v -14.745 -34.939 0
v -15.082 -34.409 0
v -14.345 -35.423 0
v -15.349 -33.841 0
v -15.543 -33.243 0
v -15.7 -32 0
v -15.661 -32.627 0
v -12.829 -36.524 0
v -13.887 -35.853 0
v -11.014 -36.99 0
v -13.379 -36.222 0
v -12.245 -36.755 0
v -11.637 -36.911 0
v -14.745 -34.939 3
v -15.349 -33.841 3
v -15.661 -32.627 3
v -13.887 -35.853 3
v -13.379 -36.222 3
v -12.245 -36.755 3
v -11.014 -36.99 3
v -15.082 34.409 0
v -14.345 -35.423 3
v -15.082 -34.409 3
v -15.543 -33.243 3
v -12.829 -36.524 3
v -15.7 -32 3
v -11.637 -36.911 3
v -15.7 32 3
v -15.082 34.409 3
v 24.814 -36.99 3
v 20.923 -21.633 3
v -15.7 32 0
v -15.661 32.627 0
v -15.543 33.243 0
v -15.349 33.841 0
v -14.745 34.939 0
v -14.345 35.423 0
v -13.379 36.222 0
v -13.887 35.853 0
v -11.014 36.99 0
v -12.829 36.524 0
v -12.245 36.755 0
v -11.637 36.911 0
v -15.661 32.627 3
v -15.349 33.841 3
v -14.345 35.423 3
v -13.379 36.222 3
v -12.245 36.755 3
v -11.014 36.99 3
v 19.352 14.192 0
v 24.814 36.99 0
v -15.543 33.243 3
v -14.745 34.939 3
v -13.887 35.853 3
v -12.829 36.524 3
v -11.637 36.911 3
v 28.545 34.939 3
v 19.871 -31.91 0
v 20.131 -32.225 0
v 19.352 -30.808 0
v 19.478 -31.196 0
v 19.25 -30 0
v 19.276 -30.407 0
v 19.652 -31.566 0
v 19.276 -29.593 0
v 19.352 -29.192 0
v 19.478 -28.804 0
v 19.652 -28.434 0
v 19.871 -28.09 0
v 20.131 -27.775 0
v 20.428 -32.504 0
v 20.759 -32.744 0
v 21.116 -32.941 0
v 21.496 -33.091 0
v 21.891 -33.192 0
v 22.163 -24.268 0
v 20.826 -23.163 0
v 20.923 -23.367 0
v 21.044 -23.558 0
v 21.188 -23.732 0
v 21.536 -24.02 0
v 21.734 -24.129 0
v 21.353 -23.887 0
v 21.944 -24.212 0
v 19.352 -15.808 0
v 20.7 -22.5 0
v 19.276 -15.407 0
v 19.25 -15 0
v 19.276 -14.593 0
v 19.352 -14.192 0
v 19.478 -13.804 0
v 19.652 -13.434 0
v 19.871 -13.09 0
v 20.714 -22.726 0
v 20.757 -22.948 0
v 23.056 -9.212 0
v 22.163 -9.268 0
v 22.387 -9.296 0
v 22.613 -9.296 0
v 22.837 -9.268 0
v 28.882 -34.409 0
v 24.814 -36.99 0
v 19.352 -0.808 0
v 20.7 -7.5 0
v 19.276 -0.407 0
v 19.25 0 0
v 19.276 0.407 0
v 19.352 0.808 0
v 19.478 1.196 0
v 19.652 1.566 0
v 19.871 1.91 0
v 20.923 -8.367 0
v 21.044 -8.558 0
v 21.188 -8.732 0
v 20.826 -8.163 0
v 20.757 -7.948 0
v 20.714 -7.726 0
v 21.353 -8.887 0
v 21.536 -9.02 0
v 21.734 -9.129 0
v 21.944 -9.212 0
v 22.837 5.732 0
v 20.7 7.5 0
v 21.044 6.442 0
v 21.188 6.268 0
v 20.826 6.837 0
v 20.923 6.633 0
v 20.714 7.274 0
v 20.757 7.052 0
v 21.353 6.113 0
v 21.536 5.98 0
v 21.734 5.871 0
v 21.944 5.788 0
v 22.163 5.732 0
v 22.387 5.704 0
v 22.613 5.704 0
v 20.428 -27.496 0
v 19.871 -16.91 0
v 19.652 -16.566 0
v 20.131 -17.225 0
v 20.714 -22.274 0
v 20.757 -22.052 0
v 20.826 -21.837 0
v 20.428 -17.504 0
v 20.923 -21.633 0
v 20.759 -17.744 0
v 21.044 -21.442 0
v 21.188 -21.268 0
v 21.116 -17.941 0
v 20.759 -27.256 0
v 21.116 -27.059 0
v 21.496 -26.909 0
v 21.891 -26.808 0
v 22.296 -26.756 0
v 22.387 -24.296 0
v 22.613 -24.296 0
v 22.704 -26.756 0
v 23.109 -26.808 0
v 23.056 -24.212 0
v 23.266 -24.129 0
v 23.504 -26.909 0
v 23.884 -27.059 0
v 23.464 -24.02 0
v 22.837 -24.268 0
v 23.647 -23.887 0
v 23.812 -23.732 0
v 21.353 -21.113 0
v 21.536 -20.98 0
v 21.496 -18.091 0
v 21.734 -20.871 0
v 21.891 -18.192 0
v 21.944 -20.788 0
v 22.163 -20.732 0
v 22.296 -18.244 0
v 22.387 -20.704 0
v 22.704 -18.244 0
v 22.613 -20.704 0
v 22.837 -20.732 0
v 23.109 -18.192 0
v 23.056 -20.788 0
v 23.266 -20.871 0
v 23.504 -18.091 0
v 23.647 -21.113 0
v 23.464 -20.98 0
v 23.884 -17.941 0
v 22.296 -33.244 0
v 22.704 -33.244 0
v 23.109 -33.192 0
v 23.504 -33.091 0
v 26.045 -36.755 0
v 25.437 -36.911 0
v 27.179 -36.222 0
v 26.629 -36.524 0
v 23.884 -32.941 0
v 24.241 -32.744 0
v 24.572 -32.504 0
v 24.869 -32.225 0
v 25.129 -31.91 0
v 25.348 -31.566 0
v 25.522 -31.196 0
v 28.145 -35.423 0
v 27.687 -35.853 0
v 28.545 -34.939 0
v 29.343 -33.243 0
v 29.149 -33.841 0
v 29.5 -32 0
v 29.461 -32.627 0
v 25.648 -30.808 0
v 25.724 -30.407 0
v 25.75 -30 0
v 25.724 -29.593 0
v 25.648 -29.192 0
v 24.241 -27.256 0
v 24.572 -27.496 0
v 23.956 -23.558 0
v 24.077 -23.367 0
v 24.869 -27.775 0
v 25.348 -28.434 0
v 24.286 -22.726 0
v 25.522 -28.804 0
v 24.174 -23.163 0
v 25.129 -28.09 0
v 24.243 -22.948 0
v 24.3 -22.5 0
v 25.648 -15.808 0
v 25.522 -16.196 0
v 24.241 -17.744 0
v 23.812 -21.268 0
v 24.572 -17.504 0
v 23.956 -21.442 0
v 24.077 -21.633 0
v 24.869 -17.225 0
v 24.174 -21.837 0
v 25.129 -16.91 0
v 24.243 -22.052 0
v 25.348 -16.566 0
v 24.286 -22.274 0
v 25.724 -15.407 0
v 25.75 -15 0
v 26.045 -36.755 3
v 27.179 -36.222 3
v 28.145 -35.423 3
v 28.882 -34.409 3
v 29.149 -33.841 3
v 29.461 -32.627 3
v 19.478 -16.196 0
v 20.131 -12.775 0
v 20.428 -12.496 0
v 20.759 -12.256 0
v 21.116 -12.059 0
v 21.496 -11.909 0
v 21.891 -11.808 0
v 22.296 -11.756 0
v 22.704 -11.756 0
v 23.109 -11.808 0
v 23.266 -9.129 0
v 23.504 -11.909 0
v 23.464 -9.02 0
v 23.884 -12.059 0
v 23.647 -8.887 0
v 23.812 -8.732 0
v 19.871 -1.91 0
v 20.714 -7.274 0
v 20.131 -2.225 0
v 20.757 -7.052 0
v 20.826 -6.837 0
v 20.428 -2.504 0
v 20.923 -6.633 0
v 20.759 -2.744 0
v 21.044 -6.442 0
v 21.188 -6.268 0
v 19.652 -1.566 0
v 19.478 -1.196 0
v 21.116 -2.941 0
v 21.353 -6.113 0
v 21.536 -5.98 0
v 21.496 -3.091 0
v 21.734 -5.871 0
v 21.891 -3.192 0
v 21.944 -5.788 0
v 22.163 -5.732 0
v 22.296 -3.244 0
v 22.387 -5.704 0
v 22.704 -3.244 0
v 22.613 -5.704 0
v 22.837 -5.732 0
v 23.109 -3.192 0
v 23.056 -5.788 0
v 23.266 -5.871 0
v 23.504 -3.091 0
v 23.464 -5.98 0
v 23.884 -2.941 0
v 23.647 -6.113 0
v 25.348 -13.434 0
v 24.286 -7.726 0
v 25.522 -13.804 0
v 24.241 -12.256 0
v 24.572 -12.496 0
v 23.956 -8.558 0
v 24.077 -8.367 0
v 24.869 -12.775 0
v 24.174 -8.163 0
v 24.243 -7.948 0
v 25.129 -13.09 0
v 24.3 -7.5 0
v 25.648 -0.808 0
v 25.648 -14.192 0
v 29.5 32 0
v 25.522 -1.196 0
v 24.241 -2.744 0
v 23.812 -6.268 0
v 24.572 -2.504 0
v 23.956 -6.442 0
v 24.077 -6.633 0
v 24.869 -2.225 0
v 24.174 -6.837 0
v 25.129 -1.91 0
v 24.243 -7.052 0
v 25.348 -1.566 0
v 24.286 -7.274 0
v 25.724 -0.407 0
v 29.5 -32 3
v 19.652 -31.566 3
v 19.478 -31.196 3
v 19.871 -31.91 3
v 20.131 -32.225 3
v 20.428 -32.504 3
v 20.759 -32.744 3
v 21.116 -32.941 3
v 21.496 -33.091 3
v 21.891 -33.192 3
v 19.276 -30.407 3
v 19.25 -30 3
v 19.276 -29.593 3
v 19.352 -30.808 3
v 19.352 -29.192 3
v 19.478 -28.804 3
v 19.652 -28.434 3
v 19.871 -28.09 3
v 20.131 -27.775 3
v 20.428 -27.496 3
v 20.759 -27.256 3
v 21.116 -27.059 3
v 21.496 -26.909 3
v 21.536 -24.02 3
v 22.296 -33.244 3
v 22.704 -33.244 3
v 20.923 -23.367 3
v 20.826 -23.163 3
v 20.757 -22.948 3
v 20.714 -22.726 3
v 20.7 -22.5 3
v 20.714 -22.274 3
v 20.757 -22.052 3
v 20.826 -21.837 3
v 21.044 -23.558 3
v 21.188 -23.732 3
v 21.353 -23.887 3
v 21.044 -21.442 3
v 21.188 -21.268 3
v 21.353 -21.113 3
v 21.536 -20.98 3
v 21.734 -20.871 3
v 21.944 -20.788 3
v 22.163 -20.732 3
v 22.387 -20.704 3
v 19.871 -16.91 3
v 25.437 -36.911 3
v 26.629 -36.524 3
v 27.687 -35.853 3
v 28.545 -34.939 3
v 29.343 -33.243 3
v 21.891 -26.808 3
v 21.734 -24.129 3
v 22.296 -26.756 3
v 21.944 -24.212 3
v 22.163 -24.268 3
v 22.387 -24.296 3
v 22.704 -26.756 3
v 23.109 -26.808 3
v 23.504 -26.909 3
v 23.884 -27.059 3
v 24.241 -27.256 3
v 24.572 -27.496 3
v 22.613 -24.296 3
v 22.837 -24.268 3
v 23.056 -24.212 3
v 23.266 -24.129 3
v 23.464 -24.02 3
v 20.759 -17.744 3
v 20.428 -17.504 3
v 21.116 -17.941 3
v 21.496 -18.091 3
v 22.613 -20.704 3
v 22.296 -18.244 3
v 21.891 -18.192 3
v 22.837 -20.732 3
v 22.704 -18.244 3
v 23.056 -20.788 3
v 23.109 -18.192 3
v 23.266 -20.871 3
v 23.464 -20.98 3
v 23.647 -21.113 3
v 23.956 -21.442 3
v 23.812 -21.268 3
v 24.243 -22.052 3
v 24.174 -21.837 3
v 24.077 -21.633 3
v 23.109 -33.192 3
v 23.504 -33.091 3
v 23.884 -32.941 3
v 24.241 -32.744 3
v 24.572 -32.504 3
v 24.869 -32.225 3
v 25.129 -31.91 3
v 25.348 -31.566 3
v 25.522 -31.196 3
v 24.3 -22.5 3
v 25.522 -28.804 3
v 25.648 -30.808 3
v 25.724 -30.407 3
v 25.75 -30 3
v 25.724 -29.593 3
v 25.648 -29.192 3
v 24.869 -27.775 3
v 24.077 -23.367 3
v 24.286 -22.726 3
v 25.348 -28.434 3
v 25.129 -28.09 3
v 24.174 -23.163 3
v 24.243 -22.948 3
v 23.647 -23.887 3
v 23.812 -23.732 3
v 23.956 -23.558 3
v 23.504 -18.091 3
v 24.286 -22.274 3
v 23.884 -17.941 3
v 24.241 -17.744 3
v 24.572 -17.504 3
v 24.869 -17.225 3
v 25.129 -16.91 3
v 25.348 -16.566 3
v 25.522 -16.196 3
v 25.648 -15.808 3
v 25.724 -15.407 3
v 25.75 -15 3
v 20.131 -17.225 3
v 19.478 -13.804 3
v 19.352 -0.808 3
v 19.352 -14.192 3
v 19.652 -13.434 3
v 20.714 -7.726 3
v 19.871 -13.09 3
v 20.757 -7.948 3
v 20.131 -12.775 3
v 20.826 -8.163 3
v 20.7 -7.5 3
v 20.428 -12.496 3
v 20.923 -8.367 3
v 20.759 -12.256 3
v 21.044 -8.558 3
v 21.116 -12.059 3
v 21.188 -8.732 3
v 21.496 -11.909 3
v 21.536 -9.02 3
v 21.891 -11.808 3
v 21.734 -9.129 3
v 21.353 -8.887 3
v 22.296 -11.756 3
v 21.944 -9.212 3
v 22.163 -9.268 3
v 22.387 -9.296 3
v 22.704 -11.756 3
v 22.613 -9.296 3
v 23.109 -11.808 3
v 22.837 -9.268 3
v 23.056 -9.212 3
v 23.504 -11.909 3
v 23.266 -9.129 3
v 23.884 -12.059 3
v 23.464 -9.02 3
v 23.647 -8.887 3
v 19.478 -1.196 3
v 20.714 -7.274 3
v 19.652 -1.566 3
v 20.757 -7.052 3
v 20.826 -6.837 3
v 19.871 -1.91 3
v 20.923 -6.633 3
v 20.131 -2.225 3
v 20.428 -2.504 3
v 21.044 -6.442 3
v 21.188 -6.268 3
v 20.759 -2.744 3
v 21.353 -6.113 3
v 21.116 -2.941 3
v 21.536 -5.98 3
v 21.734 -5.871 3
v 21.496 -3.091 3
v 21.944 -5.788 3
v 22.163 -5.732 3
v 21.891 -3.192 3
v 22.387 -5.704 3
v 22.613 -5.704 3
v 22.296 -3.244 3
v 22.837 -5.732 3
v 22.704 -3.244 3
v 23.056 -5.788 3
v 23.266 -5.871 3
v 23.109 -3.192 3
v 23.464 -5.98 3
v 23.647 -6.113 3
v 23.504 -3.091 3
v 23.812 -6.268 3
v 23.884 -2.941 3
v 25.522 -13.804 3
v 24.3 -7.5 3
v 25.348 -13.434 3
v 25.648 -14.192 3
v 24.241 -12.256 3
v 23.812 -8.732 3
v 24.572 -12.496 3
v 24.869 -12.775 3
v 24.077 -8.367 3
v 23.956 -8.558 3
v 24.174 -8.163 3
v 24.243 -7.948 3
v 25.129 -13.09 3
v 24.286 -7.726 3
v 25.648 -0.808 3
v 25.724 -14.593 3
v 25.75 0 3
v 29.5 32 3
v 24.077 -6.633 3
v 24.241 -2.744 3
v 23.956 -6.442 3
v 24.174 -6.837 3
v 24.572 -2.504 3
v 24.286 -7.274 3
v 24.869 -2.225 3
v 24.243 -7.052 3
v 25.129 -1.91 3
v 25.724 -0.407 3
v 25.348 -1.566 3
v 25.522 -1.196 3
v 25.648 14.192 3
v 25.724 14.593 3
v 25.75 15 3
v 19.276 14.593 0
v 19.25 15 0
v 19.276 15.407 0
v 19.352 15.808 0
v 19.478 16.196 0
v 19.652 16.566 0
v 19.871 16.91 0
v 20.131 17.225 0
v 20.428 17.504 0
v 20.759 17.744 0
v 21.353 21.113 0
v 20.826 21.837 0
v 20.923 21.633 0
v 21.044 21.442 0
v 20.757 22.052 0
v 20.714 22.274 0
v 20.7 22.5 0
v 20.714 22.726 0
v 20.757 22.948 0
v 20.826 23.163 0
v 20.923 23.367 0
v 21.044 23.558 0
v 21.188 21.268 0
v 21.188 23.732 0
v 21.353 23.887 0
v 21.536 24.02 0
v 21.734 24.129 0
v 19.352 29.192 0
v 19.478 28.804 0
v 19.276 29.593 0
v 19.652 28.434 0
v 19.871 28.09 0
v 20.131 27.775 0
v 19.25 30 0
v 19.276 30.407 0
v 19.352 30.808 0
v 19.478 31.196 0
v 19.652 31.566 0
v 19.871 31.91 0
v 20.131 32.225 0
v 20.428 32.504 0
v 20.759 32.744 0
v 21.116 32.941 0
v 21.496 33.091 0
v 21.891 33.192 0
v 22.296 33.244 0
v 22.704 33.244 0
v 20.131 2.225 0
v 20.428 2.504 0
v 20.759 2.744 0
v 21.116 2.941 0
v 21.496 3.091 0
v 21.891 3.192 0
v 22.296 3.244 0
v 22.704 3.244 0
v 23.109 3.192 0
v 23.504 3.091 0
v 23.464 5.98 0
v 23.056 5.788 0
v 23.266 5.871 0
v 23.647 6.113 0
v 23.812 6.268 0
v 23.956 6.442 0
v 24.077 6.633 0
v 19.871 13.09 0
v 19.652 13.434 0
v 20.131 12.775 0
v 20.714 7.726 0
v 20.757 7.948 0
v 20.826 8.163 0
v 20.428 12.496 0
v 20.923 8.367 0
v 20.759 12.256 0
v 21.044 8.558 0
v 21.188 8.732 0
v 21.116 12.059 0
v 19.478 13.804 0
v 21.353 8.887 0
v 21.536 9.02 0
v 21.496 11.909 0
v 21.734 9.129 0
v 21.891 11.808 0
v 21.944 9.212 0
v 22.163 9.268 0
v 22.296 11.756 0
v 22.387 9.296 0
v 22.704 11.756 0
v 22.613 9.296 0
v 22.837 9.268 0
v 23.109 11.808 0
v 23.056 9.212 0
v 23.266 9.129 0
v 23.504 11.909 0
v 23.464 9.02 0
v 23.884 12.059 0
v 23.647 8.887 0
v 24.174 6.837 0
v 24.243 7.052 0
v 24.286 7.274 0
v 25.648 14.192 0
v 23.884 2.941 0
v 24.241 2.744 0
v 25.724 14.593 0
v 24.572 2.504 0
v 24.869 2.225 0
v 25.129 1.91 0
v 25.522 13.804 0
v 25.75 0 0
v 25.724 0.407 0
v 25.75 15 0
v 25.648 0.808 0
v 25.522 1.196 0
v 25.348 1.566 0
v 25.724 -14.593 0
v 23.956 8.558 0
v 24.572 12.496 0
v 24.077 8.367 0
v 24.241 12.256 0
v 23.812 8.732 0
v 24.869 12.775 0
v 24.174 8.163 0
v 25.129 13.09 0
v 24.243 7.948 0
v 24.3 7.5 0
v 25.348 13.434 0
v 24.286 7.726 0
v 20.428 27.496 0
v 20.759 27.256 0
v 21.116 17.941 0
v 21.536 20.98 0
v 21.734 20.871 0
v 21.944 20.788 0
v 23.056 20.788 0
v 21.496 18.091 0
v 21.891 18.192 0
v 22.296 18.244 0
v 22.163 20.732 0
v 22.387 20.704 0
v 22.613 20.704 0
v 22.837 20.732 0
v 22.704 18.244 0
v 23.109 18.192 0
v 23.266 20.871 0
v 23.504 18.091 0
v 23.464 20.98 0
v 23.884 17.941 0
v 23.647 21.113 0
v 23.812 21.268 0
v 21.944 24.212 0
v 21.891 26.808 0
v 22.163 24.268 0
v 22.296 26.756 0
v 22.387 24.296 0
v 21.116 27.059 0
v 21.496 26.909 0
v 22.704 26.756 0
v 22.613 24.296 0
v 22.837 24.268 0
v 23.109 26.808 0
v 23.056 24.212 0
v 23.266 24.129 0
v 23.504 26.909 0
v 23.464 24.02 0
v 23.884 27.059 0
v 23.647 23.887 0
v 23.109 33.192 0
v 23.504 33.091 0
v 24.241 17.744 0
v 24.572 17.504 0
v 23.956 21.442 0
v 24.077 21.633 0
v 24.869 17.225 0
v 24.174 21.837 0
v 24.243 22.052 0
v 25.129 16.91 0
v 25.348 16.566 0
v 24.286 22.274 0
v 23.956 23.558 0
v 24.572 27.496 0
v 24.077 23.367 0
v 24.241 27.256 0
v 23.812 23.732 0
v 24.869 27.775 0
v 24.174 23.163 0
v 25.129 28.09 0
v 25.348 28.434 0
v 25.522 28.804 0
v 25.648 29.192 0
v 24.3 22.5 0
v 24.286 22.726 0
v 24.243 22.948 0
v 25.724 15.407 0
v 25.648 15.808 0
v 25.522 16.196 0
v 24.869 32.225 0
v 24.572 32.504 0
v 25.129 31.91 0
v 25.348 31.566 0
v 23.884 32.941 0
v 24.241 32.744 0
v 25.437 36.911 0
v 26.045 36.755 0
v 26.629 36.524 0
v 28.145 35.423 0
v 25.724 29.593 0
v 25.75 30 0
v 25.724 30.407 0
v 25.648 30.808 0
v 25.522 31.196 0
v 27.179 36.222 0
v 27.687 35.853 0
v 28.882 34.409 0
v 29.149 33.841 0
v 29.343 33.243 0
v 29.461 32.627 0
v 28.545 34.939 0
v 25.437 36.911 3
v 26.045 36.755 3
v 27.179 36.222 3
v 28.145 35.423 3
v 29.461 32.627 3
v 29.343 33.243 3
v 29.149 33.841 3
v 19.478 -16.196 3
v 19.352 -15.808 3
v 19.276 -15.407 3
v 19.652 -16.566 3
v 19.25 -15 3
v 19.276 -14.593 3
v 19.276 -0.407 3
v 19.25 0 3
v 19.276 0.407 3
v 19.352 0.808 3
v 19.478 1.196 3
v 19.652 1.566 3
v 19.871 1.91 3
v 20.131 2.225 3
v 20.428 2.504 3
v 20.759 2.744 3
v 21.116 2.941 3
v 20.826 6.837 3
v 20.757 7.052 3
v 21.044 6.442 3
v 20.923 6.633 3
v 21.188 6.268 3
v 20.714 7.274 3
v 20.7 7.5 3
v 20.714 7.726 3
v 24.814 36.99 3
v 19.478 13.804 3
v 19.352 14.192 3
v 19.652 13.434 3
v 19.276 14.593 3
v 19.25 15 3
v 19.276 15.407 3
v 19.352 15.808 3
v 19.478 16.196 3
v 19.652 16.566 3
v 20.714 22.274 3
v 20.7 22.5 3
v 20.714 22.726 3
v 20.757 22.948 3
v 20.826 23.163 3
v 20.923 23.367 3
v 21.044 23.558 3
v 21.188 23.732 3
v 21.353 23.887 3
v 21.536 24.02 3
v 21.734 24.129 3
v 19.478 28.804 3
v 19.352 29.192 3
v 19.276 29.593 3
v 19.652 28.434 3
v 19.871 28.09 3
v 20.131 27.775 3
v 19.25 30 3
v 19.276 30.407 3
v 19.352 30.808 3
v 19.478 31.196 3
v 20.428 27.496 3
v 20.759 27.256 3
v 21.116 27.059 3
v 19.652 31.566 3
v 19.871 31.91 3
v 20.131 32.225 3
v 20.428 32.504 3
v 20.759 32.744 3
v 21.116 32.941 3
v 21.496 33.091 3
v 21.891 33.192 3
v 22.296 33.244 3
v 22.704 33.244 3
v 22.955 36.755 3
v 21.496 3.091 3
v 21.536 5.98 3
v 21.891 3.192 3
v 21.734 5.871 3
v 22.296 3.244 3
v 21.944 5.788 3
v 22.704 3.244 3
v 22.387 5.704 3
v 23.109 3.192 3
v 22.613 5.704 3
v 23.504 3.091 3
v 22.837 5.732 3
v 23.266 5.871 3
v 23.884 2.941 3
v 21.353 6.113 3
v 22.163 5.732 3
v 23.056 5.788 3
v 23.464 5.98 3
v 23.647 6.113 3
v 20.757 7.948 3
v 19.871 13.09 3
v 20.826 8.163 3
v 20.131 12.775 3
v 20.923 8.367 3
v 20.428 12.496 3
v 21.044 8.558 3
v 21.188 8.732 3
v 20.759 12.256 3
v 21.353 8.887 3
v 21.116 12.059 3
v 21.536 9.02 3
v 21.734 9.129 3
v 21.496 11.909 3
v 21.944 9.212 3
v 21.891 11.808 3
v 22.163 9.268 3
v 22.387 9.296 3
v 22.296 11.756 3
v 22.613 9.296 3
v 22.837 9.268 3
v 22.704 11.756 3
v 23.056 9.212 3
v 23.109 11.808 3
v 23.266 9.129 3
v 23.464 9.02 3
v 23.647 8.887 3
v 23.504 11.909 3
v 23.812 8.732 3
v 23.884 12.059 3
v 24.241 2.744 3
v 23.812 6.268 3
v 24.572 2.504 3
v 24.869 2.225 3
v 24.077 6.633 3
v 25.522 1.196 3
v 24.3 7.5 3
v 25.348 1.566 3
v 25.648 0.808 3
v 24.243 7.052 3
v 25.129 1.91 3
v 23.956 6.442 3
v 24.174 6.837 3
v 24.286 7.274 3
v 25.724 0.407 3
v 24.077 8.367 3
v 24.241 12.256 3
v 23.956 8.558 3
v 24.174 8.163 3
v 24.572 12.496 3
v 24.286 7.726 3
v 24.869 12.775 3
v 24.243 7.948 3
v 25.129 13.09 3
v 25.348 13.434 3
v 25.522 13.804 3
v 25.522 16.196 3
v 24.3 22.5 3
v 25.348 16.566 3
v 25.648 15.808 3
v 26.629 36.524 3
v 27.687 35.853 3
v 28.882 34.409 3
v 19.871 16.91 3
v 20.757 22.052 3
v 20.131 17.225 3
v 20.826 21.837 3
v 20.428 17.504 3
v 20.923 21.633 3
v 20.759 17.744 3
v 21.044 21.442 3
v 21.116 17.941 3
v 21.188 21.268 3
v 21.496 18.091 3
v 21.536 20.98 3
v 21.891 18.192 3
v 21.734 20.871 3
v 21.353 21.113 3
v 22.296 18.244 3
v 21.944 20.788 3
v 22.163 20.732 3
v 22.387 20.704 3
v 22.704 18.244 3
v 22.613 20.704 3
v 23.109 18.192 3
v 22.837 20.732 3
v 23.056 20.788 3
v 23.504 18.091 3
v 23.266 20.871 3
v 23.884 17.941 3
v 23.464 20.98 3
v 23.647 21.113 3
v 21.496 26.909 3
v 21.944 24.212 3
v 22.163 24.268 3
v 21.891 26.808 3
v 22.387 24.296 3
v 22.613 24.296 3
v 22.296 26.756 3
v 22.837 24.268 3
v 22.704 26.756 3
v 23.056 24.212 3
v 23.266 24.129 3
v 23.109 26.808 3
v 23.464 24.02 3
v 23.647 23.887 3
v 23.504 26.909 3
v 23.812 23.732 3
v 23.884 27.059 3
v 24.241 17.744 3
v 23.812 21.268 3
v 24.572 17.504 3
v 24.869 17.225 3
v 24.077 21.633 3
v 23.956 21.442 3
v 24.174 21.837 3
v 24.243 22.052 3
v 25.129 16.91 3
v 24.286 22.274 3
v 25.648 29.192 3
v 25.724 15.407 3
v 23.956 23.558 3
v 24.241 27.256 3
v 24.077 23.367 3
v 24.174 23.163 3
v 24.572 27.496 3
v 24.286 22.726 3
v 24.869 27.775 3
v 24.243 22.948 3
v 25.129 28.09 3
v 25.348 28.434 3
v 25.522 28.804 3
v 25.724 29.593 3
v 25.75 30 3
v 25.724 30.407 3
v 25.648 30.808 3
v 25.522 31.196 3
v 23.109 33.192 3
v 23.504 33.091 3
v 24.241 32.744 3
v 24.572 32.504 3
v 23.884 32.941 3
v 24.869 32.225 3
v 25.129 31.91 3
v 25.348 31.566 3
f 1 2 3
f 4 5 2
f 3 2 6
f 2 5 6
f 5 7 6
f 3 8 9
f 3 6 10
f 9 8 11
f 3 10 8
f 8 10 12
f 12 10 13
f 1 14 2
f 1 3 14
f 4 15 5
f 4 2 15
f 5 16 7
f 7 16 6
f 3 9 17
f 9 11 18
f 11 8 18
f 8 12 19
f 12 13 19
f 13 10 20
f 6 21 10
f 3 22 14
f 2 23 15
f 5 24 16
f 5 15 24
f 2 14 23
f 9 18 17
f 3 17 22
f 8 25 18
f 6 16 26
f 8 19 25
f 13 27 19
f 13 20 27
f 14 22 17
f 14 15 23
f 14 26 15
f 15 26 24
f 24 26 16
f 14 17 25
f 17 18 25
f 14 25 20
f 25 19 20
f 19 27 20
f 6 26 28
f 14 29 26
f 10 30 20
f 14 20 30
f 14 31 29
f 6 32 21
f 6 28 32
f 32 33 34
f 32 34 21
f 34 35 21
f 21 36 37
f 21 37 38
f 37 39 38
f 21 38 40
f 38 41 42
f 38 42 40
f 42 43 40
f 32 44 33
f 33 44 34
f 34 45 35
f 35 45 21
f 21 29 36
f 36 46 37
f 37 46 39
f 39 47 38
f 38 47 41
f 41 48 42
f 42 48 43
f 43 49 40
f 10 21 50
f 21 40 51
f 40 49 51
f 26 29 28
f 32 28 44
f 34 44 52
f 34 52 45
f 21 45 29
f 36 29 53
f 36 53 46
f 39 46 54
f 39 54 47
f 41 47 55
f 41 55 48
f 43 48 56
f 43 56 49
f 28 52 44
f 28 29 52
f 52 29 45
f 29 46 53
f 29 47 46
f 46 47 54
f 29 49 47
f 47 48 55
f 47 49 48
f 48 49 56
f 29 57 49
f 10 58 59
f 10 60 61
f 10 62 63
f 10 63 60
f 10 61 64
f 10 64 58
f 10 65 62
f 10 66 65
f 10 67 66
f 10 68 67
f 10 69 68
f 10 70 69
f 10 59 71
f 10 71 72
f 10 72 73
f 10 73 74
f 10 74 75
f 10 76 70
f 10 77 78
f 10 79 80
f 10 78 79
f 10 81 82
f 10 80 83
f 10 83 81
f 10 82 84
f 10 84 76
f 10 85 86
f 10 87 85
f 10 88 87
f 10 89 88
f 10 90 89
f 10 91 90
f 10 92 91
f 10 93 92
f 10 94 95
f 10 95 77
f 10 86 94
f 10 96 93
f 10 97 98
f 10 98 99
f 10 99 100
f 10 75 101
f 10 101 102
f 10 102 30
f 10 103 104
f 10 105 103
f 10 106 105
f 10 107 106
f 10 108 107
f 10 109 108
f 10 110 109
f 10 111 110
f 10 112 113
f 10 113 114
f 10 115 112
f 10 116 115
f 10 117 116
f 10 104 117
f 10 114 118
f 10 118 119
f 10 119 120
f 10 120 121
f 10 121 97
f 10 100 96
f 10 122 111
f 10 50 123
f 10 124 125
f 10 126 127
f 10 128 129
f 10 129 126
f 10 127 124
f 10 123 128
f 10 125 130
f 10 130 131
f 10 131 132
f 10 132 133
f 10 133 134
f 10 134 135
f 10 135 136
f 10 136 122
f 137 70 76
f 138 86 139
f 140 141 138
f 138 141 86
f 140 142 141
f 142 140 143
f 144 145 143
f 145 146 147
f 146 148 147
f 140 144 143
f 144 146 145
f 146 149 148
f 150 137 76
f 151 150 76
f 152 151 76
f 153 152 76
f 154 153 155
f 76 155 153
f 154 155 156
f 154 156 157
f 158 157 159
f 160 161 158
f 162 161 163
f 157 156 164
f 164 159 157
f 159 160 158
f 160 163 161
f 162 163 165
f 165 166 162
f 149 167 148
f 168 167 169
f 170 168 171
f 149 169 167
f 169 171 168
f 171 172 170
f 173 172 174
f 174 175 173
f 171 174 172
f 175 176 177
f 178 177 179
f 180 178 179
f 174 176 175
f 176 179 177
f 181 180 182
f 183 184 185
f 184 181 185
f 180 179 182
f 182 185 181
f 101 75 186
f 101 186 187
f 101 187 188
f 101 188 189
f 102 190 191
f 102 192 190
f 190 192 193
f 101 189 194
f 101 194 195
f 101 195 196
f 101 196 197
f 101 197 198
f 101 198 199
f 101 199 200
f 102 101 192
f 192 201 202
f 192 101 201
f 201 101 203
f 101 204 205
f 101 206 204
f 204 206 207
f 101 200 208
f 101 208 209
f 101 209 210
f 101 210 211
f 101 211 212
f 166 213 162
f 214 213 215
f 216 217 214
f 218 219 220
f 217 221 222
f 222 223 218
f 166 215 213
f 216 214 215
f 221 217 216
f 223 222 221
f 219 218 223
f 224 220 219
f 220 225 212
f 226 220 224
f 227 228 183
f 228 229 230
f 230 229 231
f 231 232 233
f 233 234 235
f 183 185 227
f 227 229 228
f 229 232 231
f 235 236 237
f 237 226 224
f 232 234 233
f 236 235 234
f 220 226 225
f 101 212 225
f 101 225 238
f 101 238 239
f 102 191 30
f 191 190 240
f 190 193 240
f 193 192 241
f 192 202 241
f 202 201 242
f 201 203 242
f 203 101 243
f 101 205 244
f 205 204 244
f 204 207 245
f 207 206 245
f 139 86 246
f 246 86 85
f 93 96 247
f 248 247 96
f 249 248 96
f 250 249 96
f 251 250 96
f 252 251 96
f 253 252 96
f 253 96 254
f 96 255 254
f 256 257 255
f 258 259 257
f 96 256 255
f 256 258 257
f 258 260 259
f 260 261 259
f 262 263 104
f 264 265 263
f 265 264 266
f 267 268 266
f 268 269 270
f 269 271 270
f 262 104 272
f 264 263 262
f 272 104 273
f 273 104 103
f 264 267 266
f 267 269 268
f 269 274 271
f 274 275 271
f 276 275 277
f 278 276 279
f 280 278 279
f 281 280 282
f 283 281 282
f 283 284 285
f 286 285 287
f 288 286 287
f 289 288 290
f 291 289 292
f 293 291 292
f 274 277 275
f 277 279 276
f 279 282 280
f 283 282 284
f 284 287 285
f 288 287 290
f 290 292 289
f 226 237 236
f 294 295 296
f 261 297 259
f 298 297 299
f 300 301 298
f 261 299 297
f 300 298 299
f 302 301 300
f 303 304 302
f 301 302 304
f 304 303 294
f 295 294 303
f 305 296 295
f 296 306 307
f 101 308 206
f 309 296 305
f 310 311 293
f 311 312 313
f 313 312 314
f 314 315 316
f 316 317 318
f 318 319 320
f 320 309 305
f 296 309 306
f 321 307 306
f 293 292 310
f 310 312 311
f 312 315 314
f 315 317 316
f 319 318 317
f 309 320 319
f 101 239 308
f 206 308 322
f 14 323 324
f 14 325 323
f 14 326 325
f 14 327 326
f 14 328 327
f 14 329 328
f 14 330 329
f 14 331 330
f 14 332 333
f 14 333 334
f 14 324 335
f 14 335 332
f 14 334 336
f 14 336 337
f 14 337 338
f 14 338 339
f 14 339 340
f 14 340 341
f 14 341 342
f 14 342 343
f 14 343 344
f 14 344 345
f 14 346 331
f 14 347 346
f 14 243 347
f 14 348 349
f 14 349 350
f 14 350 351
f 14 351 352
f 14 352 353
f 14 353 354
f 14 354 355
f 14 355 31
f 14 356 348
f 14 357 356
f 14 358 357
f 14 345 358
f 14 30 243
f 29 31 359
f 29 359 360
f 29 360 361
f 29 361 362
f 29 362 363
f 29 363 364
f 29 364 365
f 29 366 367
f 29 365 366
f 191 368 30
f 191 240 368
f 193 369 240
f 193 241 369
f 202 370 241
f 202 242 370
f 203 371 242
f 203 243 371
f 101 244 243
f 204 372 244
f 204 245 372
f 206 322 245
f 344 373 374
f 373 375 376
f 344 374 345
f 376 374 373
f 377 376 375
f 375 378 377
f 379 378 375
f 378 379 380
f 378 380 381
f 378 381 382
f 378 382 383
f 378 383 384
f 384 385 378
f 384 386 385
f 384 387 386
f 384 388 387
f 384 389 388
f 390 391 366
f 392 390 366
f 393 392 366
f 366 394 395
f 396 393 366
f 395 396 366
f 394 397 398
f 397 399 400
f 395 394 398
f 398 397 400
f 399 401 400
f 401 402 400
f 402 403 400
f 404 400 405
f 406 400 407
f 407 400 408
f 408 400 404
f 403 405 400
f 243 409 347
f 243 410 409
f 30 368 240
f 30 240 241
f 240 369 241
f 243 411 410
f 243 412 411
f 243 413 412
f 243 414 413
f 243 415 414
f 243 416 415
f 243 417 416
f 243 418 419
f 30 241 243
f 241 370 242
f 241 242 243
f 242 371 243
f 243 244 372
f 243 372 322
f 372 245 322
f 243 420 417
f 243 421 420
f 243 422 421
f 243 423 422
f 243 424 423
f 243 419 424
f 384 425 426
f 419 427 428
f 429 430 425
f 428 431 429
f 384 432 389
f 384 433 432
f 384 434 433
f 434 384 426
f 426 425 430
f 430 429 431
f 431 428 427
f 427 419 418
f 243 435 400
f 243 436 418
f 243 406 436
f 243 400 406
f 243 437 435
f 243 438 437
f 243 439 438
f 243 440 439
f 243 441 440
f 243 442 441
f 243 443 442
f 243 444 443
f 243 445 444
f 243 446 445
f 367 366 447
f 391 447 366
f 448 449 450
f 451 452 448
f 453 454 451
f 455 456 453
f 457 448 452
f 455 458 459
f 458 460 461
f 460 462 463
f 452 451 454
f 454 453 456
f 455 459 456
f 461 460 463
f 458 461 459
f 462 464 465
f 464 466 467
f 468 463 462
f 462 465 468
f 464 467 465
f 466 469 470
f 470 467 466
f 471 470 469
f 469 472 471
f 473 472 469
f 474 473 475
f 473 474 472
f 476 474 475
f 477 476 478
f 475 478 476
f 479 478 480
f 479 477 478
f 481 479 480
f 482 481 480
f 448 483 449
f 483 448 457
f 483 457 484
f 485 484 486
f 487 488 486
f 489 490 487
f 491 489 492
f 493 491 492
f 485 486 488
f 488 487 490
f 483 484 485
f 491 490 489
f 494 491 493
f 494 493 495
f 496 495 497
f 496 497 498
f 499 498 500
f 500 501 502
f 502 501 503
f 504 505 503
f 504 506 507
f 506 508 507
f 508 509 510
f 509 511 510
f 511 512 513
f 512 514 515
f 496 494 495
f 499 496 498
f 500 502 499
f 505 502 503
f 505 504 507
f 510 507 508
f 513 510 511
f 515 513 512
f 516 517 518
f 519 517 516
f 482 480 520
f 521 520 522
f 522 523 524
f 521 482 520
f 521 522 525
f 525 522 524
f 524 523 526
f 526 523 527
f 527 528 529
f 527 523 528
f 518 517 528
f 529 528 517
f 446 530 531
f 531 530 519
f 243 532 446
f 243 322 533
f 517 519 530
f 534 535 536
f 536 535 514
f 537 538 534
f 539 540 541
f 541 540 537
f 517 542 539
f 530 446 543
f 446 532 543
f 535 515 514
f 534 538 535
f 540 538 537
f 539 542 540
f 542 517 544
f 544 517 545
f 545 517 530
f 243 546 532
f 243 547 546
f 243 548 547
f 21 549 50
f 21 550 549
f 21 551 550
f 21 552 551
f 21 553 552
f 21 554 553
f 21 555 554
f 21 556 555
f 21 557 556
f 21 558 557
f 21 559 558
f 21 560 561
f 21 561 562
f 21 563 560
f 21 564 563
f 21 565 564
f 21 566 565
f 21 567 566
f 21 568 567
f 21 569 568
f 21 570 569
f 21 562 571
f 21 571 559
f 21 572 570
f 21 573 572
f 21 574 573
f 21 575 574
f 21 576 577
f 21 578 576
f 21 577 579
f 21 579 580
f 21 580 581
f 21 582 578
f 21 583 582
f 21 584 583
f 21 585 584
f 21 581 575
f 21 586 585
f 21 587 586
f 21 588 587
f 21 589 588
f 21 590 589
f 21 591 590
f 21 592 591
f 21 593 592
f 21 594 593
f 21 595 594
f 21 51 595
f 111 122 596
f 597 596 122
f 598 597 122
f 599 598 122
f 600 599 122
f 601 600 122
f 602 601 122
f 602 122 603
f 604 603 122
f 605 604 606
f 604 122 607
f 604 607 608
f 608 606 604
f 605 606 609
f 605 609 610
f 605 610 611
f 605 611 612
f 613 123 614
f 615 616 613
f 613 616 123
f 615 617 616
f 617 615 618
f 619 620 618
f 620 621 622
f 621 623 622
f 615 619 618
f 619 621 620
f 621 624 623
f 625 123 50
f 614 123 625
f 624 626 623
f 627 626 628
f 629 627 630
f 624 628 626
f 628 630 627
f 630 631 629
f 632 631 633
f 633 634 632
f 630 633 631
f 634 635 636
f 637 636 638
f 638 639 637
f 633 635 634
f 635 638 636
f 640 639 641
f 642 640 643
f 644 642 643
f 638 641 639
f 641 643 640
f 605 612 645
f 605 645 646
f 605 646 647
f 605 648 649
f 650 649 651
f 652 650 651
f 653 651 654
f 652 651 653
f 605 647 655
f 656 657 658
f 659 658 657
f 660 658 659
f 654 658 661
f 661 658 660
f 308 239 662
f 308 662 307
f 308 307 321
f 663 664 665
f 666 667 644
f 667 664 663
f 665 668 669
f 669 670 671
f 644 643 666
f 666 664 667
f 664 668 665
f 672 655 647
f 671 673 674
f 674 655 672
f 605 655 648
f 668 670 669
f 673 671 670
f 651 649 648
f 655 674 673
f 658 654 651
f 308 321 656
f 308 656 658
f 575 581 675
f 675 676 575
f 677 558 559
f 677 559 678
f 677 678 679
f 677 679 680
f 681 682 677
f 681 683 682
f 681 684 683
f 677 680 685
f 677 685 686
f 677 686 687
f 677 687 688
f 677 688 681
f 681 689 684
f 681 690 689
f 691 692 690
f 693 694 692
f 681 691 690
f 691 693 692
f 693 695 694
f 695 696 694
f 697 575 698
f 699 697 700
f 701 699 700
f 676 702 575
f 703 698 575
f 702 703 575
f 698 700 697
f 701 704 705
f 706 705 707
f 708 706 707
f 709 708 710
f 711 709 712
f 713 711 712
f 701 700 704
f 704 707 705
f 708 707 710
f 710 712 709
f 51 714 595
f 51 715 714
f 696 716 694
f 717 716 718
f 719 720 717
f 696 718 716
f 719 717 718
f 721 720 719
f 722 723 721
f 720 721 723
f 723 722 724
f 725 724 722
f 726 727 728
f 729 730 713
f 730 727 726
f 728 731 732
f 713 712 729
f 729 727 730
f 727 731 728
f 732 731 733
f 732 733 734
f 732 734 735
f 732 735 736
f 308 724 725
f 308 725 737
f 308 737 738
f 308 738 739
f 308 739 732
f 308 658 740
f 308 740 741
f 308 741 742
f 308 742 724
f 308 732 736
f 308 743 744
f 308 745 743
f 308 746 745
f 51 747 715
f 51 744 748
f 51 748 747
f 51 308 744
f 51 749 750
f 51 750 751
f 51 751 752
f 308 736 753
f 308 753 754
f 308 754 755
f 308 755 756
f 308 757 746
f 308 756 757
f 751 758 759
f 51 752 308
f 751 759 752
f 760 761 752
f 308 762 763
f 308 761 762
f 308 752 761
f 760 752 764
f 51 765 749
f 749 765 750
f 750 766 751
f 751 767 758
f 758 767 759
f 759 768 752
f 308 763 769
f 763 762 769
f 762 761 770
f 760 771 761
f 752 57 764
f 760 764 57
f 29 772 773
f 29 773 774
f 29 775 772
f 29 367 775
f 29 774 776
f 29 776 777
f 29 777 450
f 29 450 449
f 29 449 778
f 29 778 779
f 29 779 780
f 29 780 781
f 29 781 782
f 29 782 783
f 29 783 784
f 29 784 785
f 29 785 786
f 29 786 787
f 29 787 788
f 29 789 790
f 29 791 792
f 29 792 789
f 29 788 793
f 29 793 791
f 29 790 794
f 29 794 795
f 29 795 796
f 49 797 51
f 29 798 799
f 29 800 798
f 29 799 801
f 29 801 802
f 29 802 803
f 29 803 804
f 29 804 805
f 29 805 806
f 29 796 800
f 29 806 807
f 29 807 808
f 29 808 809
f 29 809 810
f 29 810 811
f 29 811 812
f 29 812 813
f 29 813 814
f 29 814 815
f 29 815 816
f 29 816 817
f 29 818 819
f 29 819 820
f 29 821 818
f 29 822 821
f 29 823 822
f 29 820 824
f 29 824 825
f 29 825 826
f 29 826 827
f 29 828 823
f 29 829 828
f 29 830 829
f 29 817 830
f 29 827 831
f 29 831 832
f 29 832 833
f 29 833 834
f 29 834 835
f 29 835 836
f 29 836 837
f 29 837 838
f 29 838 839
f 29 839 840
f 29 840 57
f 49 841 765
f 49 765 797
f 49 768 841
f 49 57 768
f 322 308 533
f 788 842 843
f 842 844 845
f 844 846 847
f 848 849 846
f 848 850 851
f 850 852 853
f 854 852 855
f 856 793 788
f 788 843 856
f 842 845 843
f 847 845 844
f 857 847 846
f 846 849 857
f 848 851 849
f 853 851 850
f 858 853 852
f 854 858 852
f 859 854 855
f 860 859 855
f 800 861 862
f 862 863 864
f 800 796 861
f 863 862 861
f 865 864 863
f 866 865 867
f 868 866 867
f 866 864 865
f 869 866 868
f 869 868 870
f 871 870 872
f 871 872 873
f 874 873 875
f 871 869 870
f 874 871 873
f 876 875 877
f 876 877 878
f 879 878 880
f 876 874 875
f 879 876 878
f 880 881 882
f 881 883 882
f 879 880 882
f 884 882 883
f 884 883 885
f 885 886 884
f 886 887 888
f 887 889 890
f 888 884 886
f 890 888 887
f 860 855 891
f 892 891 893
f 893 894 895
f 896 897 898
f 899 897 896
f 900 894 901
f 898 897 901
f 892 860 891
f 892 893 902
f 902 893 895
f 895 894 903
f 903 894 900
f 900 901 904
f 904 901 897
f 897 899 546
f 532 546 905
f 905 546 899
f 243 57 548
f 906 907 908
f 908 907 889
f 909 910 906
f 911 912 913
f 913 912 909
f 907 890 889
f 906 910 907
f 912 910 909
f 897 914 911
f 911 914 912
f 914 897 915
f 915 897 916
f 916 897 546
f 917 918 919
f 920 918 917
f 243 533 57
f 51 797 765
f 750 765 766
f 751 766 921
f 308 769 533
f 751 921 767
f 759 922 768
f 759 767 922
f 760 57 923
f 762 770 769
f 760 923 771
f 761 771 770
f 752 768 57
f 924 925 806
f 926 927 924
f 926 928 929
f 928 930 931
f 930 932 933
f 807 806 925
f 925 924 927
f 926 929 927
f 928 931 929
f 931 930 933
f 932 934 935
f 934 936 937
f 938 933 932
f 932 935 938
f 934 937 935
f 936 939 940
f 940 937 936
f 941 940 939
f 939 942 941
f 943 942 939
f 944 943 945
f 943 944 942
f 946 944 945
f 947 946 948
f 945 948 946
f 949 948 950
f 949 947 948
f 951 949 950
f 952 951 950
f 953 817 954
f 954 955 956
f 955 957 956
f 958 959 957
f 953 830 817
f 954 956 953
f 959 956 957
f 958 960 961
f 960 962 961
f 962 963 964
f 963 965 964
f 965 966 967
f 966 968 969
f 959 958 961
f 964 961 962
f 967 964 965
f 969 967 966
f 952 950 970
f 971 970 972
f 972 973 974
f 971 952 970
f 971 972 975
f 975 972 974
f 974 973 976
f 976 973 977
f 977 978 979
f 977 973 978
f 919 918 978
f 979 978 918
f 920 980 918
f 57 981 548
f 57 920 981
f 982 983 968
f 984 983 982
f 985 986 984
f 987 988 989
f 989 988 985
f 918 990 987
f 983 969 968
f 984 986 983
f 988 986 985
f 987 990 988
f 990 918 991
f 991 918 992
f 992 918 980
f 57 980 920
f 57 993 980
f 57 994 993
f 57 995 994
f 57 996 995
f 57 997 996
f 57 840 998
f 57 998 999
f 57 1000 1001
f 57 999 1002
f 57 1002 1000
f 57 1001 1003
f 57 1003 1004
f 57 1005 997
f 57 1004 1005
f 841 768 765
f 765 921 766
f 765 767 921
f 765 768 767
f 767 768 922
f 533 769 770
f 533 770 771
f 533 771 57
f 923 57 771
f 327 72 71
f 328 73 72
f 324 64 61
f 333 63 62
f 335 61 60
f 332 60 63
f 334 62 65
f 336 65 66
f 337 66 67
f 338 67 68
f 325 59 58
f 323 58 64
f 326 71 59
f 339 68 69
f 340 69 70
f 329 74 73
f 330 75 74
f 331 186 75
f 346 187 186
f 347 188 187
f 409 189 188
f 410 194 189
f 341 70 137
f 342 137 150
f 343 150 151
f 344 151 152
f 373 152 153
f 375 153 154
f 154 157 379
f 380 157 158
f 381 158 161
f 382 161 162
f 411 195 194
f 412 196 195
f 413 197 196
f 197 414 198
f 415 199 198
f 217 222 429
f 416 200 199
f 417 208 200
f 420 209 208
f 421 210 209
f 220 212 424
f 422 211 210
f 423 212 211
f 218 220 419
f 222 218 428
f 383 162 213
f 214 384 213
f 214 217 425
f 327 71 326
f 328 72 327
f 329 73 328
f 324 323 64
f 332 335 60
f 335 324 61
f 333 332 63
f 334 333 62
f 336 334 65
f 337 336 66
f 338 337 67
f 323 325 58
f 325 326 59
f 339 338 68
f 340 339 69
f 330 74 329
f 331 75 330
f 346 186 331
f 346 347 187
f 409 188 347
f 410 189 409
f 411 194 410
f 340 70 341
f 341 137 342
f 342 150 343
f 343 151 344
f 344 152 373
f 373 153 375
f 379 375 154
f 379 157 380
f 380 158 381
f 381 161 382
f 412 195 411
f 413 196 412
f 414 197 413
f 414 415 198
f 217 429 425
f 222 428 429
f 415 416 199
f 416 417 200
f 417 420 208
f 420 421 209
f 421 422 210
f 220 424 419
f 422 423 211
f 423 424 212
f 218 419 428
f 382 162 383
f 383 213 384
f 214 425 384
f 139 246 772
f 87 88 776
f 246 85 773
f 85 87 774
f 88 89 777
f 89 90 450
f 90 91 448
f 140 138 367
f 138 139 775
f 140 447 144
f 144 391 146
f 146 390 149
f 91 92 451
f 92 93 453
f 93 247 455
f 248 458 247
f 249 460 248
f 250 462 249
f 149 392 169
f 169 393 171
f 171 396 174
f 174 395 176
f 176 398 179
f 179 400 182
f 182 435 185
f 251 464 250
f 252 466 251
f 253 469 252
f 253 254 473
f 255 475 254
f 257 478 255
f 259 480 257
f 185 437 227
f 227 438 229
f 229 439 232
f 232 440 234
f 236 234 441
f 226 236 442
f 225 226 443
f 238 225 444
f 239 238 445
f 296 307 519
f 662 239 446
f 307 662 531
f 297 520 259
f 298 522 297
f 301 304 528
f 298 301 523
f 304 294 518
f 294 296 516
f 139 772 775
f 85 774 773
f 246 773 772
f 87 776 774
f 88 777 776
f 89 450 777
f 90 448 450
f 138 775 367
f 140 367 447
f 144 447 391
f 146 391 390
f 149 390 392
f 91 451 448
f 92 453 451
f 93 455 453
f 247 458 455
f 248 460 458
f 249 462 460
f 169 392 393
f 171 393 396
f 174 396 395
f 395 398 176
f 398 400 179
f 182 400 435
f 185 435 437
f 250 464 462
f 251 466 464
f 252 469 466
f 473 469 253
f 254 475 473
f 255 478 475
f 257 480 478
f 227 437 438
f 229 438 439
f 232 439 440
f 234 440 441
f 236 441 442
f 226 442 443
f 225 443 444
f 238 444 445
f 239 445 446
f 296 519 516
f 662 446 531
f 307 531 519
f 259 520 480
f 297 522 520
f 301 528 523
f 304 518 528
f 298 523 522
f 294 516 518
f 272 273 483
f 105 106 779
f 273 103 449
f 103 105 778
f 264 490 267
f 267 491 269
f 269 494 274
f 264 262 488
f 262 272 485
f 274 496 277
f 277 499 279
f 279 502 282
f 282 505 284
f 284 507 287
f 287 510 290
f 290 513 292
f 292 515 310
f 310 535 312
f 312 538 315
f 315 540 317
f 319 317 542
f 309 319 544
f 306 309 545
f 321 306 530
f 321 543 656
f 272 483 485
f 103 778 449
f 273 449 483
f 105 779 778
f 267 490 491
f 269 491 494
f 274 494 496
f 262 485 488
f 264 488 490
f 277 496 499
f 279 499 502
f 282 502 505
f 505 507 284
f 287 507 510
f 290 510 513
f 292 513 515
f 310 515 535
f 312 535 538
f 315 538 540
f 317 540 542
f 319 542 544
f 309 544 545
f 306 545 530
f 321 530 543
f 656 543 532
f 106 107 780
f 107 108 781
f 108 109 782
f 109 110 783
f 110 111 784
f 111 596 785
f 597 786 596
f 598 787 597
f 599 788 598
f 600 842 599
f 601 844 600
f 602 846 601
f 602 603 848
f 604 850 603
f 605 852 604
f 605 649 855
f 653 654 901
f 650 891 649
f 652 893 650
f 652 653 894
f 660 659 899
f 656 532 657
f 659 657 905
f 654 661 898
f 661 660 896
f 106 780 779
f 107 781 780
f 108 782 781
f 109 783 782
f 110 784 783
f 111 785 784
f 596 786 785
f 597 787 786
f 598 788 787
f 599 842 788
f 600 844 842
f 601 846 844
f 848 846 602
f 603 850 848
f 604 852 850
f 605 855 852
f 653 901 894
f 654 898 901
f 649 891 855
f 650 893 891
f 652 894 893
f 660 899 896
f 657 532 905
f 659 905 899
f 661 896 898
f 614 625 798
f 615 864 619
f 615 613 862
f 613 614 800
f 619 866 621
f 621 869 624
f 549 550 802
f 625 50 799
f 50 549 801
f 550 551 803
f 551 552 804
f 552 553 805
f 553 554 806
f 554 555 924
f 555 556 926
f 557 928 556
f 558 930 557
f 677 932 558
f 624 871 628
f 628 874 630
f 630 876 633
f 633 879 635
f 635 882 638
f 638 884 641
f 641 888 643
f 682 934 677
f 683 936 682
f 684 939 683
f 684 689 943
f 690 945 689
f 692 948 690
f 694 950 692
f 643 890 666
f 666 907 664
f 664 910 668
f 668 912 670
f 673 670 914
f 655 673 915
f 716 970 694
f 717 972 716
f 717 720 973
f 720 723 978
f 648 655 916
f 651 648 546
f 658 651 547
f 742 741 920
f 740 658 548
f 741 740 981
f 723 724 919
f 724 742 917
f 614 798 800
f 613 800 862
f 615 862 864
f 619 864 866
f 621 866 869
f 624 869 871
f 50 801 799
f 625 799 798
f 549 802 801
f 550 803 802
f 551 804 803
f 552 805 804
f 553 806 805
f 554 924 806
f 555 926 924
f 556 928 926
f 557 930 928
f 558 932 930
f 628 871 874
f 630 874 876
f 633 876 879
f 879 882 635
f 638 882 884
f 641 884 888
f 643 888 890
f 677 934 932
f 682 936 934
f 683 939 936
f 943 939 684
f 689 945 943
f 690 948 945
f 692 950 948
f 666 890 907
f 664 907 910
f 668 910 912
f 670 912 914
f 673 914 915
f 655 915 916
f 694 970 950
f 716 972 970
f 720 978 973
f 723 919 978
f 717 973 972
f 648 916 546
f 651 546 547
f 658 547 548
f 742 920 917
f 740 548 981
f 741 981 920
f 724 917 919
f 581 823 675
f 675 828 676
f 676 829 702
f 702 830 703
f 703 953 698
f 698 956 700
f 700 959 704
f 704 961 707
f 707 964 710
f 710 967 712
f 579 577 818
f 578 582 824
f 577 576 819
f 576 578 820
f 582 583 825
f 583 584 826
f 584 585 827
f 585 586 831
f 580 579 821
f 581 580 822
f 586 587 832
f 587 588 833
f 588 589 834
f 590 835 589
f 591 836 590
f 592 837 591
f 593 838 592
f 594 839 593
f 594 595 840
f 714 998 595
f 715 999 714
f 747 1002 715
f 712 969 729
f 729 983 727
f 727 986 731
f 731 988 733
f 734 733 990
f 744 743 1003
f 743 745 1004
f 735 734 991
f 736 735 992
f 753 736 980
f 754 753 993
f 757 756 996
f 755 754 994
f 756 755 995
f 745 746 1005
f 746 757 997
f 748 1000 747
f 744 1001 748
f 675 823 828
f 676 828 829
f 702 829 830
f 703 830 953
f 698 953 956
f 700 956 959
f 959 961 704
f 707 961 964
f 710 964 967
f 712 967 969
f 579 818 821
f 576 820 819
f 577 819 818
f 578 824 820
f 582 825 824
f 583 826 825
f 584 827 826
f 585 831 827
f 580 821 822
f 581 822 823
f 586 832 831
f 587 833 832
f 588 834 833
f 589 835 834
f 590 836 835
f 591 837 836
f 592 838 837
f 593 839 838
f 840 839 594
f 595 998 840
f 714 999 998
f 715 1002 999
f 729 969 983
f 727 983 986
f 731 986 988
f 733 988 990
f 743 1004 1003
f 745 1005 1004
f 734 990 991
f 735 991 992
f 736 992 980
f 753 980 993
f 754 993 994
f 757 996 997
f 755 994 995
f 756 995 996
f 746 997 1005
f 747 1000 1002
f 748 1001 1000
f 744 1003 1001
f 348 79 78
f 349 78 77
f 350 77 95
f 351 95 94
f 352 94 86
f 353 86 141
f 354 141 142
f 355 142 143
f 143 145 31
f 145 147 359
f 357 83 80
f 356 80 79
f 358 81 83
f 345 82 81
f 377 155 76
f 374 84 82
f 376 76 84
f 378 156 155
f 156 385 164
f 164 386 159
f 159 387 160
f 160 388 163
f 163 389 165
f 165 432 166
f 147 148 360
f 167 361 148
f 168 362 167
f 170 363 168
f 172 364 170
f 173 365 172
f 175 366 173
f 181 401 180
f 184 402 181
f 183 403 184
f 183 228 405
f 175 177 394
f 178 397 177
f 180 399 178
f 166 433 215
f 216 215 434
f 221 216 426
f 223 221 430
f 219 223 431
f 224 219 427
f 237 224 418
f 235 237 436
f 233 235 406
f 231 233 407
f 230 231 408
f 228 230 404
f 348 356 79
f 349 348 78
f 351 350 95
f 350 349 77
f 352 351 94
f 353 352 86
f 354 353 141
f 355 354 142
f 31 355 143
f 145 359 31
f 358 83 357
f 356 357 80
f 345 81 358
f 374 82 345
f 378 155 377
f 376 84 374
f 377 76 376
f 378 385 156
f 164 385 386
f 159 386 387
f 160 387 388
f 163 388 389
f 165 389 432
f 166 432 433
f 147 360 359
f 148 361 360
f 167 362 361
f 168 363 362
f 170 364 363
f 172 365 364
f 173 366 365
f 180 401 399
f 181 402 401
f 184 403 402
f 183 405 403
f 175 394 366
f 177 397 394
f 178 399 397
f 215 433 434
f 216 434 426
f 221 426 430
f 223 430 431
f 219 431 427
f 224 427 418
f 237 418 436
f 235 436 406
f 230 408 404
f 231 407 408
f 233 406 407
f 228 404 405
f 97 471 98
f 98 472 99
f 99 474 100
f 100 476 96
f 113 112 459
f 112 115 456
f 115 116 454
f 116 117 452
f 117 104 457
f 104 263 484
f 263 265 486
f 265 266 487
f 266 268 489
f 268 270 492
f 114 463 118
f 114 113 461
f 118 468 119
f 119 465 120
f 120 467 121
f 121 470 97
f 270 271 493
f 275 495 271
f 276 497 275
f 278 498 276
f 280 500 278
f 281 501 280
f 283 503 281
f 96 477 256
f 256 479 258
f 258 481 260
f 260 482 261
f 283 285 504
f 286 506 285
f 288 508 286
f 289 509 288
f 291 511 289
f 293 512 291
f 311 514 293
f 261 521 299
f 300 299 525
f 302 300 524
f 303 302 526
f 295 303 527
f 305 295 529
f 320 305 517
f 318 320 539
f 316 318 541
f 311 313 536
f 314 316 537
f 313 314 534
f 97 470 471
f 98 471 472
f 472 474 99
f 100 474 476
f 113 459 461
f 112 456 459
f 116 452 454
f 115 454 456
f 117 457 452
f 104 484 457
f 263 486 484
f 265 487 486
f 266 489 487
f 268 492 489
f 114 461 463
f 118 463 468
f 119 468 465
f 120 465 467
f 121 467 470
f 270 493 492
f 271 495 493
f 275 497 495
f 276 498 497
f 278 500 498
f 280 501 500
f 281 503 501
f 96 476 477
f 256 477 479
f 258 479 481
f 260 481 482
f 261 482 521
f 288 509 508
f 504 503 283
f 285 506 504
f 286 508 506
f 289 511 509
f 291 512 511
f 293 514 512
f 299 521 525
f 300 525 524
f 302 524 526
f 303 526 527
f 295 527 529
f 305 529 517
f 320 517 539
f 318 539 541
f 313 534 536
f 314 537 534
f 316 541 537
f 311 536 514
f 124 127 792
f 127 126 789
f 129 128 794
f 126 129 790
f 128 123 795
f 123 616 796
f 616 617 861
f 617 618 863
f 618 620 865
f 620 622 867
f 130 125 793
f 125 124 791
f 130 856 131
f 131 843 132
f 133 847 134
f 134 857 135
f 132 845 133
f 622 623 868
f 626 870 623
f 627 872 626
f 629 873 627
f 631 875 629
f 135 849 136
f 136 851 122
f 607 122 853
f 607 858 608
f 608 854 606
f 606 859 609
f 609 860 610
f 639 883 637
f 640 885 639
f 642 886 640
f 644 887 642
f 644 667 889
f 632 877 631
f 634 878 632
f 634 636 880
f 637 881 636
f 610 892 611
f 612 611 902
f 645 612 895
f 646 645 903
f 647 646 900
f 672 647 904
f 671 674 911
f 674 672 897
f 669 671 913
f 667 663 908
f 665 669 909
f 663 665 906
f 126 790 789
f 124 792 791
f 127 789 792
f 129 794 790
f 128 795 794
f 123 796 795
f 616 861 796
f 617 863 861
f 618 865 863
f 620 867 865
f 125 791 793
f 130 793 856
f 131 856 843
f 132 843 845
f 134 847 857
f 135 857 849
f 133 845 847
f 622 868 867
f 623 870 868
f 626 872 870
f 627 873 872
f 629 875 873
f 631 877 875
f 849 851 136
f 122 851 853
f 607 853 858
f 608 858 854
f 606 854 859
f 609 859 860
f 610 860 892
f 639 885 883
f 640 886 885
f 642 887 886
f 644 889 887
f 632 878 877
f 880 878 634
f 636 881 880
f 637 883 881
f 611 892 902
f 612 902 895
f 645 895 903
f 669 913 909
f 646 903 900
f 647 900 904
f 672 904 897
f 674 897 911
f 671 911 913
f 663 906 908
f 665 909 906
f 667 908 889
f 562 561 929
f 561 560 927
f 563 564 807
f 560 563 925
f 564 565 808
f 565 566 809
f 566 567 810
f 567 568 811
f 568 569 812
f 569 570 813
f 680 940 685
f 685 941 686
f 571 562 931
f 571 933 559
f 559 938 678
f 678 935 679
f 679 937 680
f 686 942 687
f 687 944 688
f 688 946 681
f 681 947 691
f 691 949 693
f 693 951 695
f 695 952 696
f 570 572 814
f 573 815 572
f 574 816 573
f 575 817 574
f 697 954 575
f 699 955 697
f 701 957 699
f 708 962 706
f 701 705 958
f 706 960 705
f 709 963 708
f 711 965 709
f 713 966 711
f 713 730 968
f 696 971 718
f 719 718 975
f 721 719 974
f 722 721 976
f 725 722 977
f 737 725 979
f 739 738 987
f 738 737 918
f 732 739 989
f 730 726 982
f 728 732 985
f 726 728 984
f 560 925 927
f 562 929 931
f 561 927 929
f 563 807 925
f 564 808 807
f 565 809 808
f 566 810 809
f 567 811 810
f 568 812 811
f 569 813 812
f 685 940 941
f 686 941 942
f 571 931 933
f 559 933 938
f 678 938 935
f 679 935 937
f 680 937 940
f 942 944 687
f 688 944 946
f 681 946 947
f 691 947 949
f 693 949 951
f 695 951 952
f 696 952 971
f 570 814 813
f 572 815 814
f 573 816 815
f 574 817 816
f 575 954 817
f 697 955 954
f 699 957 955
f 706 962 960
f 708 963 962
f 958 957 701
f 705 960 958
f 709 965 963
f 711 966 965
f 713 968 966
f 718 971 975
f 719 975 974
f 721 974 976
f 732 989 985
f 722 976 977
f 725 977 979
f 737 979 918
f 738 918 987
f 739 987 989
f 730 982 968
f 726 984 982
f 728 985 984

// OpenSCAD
$fn = 50;

difference() {
	union() {
		translate(v = [6.9, 0.0, 0]) {
			hull() {
				translate(v = [-17.6, 32.0, 0]) {
					cylinder(h = 3, r = 5);
				}
				translate(v = [17.6, 32.0, 0]) {
					cylinder(h = 3, r = 5);
				}
				translate(v = [-17.6, -32.0, 0]) {
					cylinder(h = 3, r = 5);
				}
				translate(v = [17.6, -32.0, 0]) {
					cylinder(h = 3, r = 5);
				}
			}
		}
	}
	union() {
		translate(v = [22.5, -30.0, -1]) {
			cylinder(h = 5, r = 3.25);
		}
		translate(v = [22.5, -15.0, -1]) {
			cylinder(h = 5, r = 3.25);
		}
		translate(v = [22.5, 0.0, -1]) {
			cylinder(h = 5, r = 3.25);
		}
		translate(v = [22.5, 15.0, -1]) {
			cylinder(h = 5, r = 3.25);
		}
		translate(v = [22.5, 30.0, -1]) {
			cylinder(h = 5, r = 3.25);
		}
		translate(v = [22.5, -22.5, -1]) {
			cylinder(h = 5, r = 1.8);
		}
		translate(v = [22.5, -7.5, -1]) {
			cylinder(h = 5, r = 1.8);
		}
		translate(v = [22.5, 7.5, -1]) {
			cylinder(h = 5, r = 1.8);
		}
		translate(v = [22.5, 22.5, -1]) {
			cylinder(h = 5, r = 1.8);
		}
	}
}
